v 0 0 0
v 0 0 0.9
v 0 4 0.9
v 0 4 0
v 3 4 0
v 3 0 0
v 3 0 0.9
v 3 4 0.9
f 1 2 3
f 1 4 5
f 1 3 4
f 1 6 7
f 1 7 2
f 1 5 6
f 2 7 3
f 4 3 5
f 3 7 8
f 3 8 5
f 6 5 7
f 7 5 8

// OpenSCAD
/* Warning, this is a very basic generator with a lot of approximation 
input data : [VQFN, NLA, 3x4x0.9mm, 24, , A, C04-01032A]
generated by com.zoubworld.electronics.cad.model3d.Basic
Date : Sun Feb 15 10:50:49 CET 2026
*/

//body
color("black")
translate([0,0,0])
cube([3.0,4.0,0.9], center=false);
